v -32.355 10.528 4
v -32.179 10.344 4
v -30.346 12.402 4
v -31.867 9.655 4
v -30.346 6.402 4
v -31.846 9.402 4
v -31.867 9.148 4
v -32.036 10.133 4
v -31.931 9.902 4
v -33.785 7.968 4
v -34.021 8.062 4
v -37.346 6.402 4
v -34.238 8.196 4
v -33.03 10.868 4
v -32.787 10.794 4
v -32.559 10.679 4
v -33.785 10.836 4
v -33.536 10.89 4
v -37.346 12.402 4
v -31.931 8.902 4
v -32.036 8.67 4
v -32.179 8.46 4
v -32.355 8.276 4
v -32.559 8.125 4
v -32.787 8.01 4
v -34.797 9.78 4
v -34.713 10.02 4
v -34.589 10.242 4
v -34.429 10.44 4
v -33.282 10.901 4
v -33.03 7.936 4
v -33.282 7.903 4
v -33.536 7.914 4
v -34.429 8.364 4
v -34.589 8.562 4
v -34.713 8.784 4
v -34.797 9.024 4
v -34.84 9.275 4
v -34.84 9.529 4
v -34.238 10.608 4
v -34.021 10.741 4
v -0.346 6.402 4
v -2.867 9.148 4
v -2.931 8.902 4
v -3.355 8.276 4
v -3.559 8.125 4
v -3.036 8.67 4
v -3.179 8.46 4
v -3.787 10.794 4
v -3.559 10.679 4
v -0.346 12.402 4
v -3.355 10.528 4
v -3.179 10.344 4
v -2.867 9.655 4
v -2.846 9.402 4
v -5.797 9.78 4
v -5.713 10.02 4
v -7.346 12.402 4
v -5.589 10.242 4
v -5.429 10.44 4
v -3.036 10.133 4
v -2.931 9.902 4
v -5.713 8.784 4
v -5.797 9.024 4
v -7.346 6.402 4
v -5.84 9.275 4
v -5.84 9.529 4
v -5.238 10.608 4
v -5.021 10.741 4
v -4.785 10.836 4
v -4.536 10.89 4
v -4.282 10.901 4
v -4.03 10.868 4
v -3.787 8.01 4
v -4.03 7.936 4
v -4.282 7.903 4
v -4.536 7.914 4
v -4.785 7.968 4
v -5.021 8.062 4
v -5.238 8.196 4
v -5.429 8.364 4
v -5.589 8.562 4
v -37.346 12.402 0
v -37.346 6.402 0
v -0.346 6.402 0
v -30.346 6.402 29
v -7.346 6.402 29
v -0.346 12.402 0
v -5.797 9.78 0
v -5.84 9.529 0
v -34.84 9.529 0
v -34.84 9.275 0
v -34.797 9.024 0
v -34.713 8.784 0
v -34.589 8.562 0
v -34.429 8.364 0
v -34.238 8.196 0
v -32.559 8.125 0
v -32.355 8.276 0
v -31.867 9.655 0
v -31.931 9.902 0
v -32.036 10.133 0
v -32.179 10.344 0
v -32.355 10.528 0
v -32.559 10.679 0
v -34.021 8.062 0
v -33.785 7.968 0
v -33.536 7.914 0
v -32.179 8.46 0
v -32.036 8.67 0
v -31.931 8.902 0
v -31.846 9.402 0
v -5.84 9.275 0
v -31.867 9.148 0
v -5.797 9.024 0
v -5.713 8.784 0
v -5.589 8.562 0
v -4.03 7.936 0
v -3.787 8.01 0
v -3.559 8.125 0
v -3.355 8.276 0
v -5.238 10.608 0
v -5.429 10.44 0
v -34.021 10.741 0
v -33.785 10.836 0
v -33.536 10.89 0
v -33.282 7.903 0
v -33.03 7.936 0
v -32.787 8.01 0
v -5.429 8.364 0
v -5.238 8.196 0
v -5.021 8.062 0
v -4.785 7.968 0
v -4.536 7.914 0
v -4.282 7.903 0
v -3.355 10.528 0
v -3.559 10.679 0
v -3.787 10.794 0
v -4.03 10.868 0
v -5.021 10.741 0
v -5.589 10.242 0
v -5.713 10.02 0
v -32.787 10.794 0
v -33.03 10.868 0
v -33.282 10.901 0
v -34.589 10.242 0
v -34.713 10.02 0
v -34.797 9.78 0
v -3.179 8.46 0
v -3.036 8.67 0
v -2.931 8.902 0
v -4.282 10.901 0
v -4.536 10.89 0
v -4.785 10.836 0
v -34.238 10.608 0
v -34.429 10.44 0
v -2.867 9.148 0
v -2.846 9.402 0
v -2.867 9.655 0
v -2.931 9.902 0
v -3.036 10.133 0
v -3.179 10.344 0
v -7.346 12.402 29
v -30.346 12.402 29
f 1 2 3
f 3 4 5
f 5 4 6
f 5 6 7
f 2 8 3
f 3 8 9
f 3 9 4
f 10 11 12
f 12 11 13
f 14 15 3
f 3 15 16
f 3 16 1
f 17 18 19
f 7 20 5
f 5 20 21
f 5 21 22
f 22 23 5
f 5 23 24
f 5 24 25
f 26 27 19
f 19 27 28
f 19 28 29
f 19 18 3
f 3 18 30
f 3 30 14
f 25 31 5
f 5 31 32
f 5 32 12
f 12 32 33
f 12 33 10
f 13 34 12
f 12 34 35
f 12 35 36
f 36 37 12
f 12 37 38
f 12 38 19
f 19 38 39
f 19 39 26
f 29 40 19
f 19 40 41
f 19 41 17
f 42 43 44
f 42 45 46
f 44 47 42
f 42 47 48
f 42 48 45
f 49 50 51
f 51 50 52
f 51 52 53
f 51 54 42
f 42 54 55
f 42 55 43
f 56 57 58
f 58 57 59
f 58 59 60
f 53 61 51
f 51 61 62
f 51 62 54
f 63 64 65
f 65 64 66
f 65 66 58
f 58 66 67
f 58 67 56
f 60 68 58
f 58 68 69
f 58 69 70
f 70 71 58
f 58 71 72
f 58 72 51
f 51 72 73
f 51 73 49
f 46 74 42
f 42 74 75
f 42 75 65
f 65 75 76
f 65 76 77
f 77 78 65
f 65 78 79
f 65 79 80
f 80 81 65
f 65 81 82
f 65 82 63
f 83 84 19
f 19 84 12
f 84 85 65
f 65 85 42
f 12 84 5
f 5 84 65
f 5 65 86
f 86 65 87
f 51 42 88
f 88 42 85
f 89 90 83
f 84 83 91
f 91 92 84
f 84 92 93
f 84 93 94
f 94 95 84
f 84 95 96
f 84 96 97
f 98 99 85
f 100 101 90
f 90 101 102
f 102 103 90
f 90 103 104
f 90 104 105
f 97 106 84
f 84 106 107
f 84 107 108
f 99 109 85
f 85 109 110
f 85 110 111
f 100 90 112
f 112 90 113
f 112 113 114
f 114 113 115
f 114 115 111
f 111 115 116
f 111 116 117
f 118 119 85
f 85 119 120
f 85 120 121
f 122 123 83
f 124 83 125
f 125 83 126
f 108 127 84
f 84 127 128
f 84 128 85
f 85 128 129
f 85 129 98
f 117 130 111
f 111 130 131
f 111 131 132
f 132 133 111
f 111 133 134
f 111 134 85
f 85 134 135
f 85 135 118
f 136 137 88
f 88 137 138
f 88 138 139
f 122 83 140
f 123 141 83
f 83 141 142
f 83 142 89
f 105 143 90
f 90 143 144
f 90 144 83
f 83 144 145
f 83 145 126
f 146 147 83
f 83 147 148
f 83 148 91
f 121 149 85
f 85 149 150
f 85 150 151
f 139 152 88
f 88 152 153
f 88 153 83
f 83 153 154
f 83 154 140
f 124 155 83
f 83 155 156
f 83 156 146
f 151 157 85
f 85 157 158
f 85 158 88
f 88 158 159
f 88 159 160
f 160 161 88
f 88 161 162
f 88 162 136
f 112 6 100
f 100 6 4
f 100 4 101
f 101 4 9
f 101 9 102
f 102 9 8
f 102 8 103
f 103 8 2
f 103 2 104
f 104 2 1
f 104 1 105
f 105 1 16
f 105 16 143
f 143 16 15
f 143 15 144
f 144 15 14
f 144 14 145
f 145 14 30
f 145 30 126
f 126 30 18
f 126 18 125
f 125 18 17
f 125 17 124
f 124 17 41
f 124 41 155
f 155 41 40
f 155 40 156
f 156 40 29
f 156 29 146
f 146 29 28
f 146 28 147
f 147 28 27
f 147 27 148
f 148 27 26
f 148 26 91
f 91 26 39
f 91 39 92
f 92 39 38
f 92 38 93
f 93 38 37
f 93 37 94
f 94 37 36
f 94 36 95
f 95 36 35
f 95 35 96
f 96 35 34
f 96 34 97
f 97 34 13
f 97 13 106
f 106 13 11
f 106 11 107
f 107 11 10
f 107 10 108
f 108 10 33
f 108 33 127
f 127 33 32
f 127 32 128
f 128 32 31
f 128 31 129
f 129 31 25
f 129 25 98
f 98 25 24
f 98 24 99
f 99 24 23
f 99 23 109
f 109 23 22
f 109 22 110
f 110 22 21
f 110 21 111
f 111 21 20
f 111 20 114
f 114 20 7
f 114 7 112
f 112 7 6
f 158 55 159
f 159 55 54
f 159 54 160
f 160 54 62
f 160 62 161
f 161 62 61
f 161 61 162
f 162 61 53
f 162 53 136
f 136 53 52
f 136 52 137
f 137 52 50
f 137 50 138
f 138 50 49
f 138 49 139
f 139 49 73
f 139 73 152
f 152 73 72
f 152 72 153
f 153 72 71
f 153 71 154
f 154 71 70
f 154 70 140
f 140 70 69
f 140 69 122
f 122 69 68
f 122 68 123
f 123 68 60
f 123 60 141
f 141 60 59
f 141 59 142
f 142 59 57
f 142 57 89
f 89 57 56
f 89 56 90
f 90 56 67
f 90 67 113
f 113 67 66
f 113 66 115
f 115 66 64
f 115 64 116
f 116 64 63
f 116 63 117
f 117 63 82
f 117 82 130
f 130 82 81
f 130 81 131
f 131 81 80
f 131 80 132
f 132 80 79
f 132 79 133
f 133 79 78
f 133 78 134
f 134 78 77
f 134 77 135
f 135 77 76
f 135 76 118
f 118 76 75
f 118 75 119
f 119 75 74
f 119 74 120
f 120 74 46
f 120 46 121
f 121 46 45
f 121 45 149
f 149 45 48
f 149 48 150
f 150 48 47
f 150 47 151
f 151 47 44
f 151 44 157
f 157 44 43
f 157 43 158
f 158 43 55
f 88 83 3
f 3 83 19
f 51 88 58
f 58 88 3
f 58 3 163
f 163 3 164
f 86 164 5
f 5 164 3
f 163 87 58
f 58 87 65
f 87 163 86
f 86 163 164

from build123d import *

# Parameters (mm, degrees)
CROQUIS1_W              = 37
CROQUIS1_H              = 10
SALIENTE_EXTRUIR1_DEPTH = 25
CROQUIS2_W              = 37
CROQUIS2_H              = 6
CORTAR_EXTRUIR1_DEPTH   = 21
CROQUIS4_R              = 1.5
CORTAR_EXTRUIR2_DEPTH   = 4
CROQUIS6_W              = 37
CROQUIS6_H              = 4
CORTAR_EXTRUIR3_DEPTH   = 4
CROQUIS8_W              = 23
CROQUIS8_H              = 6
SALIENTE_EXTRUIR2_DEPTH = 25


with BuildPart() as part:
    # Croquis1 → Saliente-Extruir1 (new body)
    with BuildSketch(Plane.XY):
        with Locations((-18.845794393, 11.401869159)):
            Rectangle(CROQUIS1_W, CROQUIS1_H)
    extrude(amount=SALIENTE_EXTRUIR1_DEPTH)

    # Croquis2 → Cortar-Extruir1 (cut)
    with BuildSketch(Plane.XY.offset(25)):
        with Locations((-18.845794393, 9.401869159)):
            Rectangle(CROQUIS2_W, CROQUIS2_H)
    extrude(amount=-CORTAR_EXTRUIR1_DEPTH, mode=Mode.SUBTRACT)

    # Croquis4 → Cortar-Extruir2 (cut)
    with BuildSketch(Plane.XY.offset(4)):
        with Locations((-33.345794393, 9.401869159)):
            Circle(CROQUIS4_R)
        with Locations((-4.345794393, 9.401869159)):
            Circle(CROQUIS4_R)
    extrude(amount=-CORTAR_EXTRUIR2_DEPTH, mode=Mode.SUBTRACT)

    # Croquis6 → Cortar-Extruir3 (cut)
    with BuildSketch(Plane(origin=(0, 0, 0), x_dir=(-1, 0, 0), z_dir=(0, 0, -1))):
        with Locations((18.845794393, 14.401869159)):
            Rectangle(CROQUIS6_W, CROQUIS6_H)
    extrude(amount=-CORTAR_EXTRUIR3_DEPTH, mode=Mode.SUBTRACT)


with BuildPart() as cortar_extruir3_kept_piece:
    # of the separate pieces the step leaves, the one the design keeps (cortar_extruir3_pieces_kept)
    add(part.part.solids().sort_by_distance((-37.345794393, 6.401869159, 0))[0])

    # Croquis8 → Saliente-Extruir2 (add)
    with BuildSketch(Plane.XY.offset(4)):
        with Locations((-18.845794393, 9.401869159)):
            Rectangle(CROQUIS8_W, CROQUIS8_H)
    extrude(amount=SALIENTE_EXTRUIR2_DEPTH)


solid = cortar_extruir3_kept_piece.part
